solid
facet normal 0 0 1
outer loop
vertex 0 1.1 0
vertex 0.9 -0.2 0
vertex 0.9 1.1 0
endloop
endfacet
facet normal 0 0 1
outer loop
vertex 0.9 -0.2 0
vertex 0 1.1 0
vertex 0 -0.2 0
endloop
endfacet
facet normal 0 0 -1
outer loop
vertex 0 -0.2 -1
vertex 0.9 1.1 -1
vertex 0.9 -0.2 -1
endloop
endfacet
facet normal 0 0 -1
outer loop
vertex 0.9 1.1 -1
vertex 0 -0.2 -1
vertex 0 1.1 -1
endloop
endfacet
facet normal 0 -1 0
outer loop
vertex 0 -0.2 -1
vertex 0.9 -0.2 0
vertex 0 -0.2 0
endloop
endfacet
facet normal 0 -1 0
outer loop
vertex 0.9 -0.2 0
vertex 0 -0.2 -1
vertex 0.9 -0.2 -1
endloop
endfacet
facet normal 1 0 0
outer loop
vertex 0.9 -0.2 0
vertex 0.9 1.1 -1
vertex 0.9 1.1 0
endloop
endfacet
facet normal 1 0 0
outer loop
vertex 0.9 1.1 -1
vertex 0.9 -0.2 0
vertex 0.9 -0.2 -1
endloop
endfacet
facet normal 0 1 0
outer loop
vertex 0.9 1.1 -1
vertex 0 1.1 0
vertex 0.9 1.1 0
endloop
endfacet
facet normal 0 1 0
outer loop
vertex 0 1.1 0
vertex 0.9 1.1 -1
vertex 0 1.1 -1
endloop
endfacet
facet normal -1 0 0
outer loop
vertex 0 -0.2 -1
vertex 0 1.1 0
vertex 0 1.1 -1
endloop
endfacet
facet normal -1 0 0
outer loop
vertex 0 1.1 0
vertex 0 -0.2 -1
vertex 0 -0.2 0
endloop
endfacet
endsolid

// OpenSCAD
//------------------------------------------------------
// Base
// BAse
// 5@xes 15/07/2022
// Size Must be close to 1x1 !
//------------------------------------------------------

$fn=20;


//render() translate([0.5,0,0]) mirror([1,0,0]) letter("/");
render() translate([0,-0.2,-1]) cube(size = [0.9,1.3,1], center = false);
